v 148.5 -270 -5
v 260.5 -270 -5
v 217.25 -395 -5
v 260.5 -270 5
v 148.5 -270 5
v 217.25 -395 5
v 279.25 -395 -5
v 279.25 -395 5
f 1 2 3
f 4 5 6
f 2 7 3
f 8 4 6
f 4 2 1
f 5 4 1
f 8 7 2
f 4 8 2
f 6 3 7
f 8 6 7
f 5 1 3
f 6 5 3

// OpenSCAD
polyhedron(points=[[217.25, -395.0, -5.0], [148.5, -270.0, -5.0], [260.5, -270.0, -5.0], [217.25, -395.0, 5.0], [148.5, -270.0, 5.0], [260.5, -270.0, 5.0], [279.25, -395.0, -5.0], [279.25, -395.0, 5.0]], faces=[[1, 2, 0], [5, 4, 3], [2, 6, 0], [7, 5, 3], [5, 2, 1], [4, 5, 1], [7, 6, 2], [5, 7, 2], [3, 0, 6], [7, 3, 6], [4, 1, 0], [3, 4, 0]], convexity=20);
